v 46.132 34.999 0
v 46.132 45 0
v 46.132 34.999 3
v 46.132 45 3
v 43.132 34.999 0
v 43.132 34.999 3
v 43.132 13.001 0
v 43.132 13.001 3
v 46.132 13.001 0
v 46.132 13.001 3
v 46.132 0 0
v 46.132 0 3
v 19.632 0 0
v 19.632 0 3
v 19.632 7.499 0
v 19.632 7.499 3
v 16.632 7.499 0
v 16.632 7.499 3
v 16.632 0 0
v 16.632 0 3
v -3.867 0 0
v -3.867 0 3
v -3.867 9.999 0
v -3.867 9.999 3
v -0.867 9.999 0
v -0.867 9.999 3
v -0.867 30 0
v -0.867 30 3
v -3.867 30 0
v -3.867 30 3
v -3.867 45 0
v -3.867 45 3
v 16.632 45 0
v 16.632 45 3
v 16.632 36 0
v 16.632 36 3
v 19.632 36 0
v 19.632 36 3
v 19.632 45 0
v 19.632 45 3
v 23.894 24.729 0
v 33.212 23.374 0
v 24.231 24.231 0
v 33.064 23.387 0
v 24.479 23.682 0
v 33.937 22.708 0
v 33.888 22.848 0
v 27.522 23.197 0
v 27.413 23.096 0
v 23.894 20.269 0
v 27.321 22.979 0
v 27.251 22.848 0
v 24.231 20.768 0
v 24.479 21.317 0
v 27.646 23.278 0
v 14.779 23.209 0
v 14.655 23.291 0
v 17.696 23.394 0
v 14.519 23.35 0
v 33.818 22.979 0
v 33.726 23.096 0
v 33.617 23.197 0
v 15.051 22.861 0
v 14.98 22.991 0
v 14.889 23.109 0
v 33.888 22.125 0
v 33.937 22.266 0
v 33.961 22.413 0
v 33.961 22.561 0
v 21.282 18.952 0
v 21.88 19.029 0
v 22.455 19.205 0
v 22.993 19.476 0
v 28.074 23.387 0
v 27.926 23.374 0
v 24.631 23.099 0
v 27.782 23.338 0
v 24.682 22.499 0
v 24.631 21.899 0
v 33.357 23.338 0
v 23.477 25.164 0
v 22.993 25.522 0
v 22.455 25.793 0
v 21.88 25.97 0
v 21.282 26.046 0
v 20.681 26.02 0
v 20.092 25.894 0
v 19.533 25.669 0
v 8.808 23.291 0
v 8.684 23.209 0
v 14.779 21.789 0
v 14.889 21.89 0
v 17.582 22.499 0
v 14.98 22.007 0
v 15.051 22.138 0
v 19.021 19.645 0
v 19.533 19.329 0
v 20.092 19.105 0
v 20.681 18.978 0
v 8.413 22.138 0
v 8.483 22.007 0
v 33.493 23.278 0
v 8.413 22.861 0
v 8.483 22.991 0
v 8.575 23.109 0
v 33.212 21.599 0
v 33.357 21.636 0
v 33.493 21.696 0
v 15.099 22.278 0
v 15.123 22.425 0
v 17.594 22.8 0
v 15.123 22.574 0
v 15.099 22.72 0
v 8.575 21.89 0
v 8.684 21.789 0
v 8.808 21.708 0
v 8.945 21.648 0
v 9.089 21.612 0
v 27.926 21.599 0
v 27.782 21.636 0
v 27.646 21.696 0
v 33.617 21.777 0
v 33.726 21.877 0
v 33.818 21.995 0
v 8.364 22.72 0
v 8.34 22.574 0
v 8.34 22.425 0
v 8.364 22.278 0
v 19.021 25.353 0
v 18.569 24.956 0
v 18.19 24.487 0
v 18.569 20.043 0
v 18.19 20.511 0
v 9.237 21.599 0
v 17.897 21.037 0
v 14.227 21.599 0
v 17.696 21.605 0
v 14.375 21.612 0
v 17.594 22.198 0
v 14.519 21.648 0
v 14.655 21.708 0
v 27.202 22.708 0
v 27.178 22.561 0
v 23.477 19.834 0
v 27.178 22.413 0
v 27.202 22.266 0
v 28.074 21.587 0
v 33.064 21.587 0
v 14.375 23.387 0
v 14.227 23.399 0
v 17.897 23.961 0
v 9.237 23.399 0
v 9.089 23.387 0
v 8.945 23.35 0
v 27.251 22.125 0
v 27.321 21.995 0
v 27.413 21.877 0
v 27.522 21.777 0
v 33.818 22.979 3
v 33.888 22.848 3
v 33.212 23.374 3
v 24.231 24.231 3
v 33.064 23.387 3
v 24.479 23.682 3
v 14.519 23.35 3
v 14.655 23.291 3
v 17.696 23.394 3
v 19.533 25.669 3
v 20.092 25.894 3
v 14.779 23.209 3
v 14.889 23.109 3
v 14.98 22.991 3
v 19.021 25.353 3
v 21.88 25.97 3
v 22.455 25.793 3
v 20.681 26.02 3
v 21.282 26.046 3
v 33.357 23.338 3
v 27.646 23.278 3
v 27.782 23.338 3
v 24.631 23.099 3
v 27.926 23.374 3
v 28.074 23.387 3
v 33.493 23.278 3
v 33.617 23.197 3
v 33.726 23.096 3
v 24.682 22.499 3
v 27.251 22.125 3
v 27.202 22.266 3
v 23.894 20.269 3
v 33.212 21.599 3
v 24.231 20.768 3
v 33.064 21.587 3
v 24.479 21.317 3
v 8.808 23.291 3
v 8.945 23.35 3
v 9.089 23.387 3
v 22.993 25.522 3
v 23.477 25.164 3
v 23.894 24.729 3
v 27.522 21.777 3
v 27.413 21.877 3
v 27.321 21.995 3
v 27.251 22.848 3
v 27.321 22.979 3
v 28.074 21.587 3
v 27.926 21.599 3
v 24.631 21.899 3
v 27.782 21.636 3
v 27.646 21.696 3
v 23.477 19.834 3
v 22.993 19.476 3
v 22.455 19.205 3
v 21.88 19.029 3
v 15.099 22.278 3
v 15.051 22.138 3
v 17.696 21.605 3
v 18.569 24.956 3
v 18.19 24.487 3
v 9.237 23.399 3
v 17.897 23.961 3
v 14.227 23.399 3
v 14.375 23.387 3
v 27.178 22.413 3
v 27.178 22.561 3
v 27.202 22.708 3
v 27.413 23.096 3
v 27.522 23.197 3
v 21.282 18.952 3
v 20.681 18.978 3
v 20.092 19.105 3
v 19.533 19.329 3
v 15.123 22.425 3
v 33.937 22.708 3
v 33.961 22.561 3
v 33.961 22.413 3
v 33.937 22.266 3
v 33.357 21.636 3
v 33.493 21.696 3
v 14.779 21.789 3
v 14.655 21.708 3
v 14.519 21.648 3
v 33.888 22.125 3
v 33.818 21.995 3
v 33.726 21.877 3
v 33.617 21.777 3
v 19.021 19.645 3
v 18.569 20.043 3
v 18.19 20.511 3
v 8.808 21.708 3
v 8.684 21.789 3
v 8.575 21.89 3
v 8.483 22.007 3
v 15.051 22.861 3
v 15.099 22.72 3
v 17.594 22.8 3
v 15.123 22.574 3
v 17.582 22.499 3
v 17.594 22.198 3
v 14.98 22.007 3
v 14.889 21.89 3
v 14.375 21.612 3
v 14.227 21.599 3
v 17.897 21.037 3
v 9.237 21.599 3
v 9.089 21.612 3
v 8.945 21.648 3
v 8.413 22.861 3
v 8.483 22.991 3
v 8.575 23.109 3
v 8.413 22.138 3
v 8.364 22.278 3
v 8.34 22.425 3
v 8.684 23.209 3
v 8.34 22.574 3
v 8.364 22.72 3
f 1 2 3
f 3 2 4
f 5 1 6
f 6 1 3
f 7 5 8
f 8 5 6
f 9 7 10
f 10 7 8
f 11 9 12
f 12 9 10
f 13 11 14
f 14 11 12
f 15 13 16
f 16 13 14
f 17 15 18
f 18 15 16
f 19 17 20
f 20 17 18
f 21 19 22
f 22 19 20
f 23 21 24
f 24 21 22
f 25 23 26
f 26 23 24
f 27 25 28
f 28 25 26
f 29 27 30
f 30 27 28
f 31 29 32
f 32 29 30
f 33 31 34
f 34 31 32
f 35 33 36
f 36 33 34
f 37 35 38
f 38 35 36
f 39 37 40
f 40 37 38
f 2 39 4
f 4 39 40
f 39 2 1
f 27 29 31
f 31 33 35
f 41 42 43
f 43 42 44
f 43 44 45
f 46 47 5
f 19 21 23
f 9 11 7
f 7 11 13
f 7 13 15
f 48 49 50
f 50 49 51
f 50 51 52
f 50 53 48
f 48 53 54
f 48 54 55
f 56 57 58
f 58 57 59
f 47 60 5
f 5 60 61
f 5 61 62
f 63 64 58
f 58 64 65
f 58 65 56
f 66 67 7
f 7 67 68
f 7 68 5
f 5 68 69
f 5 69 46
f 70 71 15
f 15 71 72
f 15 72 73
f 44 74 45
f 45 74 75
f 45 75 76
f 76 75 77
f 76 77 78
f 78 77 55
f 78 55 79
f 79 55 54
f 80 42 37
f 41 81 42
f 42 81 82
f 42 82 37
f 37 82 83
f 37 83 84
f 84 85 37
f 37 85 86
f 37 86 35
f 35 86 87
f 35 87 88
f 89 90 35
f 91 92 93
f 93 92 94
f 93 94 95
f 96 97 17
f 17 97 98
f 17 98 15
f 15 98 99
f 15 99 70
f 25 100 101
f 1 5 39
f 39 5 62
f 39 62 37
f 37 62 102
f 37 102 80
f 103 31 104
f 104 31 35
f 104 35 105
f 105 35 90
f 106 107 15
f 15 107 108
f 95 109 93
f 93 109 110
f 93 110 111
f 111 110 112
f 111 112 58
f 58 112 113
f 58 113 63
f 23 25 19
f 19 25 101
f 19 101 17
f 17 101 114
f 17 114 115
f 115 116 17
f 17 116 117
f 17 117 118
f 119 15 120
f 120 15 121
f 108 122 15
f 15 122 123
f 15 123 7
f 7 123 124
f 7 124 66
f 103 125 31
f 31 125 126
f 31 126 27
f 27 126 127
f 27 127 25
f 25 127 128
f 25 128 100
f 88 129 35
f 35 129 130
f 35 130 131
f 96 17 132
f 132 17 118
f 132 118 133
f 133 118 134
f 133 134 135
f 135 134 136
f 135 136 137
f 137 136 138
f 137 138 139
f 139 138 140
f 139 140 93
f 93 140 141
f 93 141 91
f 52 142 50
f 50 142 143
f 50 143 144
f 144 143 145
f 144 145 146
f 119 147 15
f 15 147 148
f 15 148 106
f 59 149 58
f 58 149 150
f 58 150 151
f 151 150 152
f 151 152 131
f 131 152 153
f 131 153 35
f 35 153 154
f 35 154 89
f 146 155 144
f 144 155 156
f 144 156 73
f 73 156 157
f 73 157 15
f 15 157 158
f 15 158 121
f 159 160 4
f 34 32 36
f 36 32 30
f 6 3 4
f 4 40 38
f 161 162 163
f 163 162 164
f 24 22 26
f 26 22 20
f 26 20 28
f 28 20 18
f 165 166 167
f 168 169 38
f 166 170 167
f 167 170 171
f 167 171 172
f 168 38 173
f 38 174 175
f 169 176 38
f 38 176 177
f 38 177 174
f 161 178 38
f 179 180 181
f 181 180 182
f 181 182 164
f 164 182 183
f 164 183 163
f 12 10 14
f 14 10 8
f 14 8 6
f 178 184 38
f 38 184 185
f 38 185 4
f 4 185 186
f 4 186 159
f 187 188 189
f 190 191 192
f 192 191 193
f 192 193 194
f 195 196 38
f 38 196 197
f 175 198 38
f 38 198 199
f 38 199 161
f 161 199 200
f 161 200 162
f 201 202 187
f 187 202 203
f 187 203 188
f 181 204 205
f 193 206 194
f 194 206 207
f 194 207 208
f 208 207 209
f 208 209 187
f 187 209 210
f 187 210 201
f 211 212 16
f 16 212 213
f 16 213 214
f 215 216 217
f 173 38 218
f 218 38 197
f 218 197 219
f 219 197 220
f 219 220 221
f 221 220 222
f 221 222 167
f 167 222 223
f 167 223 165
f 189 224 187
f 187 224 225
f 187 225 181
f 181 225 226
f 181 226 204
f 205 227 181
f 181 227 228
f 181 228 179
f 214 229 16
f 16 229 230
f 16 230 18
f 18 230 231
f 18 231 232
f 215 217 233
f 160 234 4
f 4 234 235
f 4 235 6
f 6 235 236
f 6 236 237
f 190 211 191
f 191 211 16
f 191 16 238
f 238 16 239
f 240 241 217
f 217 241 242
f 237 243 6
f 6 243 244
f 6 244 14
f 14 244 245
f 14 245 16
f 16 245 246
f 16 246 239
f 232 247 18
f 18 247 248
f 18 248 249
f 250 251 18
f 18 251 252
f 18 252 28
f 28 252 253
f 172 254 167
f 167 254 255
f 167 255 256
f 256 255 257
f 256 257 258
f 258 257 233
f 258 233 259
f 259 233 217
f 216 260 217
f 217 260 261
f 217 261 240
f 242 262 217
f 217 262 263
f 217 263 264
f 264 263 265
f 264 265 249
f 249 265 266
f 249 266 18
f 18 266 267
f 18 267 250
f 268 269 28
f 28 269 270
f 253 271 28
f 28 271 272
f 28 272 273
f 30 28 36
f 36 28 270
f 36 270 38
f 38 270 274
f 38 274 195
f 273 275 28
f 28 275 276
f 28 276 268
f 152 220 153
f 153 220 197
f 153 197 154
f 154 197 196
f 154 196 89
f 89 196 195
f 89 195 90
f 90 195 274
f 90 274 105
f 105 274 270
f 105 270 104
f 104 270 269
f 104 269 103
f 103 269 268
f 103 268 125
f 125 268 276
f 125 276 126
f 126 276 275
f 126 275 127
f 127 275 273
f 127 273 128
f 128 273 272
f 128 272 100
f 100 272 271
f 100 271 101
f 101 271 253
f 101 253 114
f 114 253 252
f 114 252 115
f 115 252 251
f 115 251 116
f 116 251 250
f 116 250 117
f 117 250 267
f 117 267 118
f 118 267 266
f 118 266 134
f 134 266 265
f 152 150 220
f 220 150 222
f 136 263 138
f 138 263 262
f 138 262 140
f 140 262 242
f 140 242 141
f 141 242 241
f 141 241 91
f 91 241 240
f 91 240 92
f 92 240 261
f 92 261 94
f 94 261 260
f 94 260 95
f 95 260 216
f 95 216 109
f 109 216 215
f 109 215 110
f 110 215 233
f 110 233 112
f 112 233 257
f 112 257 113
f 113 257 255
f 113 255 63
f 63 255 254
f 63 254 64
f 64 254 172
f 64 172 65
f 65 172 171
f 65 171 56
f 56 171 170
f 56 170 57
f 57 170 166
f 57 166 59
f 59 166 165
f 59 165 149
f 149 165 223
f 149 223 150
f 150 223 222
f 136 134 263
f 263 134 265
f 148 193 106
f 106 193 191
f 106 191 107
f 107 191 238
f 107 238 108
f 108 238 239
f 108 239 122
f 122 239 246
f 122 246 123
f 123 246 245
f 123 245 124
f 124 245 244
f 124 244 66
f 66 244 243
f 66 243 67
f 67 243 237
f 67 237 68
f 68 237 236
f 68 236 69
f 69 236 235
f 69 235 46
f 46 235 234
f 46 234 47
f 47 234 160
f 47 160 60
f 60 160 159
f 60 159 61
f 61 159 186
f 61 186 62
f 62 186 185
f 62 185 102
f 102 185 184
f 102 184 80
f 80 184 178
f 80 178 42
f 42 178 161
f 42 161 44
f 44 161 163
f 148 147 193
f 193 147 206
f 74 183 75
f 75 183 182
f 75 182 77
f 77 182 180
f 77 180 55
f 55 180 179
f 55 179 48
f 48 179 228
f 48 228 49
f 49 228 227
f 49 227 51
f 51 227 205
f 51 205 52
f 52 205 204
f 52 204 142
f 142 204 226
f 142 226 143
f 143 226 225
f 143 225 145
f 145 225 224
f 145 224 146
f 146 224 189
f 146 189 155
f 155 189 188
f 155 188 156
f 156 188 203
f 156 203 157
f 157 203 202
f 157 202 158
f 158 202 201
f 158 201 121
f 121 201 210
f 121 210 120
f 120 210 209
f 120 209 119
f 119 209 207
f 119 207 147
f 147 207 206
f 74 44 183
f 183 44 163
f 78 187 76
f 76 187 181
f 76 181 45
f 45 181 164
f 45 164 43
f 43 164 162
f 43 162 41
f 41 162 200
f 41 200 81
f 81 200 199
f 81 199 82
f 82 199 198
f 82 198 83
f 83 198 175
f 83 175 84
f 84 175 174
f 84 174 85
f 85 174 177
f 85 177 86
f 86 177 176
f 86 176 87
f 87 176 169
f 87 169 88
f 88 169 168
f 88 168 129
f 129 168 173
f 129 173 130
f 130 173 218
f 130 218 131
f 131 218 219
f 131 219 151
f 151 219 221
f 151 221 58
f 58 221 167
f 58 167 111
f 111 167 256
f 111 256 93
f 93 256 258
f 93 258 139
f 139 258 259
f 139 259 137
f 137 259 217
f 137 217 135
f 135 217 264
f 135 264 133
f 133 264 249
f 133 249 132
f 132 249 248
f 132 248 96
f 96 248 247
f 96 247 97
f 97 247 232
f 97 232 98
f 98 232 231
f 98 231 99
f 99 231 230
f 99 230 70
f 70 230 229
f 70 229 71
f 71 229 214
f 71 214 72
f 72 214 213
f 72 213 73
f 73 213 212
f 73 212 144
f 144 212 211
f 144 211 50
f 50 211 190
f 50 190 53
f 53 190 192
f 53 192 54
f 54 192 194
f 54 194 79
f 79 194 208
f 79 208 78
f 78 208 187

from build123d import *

# Parameters (mm, degrees)
SKETCH_1_R      = 3.55
EXTRUDE_1_DEPTH = 3


with BuildPart() as part:
    # 草图1 → 凸台-拉伸1 (new body)
    with BuildSketch(Plane.XY.offset(3)):
        Polygon((46.131858504, 44.9999), (19.632388504, 44.9999), (19.632388504, 35.9998), (16.632358504, 35.9998), (16.632358504, 44.9999), (-3.867371496, 44.9999), (-3.867371496, 29.9998), (-0.867341496, 29.9998), (-0.867341496, 9.9991), (-3.867371496, 9.9991), (-3.867371496, 0), (16.632358504, 0), (16.632358504, 7.4993), (19.632388504, 7.4993), (19.632388504, 0), (46.131858504, 0), (46.131858504, 13.0005), (43.131858504, 13.0005), (43.131858504, 34.9994), (46.131858504, 34.9994), align=None)
        with Locations(Location((21.131658504, 22.4992, 0), (0, 0, 180))):
            Circle(SKETCH_1_R, mode=Mode.SUBTRACT)
        with BuildLine():
            Line((9.236684618, 23.399), (14.226589495, 23.399))
            ThreePointArc((14.226589495, 23.399), (15.126339495, 22.49925), (14.226589495, 21.5995))
            Line((14.226589495, 21.5995), (9.236684618, 21.5995))
            ThreePointArc((9.236684618, 21.5995), (8.336934618, 22.49925), (9.236684618, 23.399))
        make_face(mode=Mode.SUBTRACT)
        with BuildLine():
            Line((33.064389495, 21.5871), (28.074484618, 21.5871))
            ThreePointArc((28.074484618, 21.5871), (27.174734618, 22.48685), (28.074484618, 23.3866))
            Line((28.074484618, 23.3866), (33.064389495, 23.3866))
            ThreePointArc((33.064389495, 23.3866), (33.964139495, 22.48685), (33.064389495, 21.5871))
        make_face(mode=Mode.SUBTRACT)
    extrude(amount=-EXTRUDE_1_DEPTH)


solid = part.part
